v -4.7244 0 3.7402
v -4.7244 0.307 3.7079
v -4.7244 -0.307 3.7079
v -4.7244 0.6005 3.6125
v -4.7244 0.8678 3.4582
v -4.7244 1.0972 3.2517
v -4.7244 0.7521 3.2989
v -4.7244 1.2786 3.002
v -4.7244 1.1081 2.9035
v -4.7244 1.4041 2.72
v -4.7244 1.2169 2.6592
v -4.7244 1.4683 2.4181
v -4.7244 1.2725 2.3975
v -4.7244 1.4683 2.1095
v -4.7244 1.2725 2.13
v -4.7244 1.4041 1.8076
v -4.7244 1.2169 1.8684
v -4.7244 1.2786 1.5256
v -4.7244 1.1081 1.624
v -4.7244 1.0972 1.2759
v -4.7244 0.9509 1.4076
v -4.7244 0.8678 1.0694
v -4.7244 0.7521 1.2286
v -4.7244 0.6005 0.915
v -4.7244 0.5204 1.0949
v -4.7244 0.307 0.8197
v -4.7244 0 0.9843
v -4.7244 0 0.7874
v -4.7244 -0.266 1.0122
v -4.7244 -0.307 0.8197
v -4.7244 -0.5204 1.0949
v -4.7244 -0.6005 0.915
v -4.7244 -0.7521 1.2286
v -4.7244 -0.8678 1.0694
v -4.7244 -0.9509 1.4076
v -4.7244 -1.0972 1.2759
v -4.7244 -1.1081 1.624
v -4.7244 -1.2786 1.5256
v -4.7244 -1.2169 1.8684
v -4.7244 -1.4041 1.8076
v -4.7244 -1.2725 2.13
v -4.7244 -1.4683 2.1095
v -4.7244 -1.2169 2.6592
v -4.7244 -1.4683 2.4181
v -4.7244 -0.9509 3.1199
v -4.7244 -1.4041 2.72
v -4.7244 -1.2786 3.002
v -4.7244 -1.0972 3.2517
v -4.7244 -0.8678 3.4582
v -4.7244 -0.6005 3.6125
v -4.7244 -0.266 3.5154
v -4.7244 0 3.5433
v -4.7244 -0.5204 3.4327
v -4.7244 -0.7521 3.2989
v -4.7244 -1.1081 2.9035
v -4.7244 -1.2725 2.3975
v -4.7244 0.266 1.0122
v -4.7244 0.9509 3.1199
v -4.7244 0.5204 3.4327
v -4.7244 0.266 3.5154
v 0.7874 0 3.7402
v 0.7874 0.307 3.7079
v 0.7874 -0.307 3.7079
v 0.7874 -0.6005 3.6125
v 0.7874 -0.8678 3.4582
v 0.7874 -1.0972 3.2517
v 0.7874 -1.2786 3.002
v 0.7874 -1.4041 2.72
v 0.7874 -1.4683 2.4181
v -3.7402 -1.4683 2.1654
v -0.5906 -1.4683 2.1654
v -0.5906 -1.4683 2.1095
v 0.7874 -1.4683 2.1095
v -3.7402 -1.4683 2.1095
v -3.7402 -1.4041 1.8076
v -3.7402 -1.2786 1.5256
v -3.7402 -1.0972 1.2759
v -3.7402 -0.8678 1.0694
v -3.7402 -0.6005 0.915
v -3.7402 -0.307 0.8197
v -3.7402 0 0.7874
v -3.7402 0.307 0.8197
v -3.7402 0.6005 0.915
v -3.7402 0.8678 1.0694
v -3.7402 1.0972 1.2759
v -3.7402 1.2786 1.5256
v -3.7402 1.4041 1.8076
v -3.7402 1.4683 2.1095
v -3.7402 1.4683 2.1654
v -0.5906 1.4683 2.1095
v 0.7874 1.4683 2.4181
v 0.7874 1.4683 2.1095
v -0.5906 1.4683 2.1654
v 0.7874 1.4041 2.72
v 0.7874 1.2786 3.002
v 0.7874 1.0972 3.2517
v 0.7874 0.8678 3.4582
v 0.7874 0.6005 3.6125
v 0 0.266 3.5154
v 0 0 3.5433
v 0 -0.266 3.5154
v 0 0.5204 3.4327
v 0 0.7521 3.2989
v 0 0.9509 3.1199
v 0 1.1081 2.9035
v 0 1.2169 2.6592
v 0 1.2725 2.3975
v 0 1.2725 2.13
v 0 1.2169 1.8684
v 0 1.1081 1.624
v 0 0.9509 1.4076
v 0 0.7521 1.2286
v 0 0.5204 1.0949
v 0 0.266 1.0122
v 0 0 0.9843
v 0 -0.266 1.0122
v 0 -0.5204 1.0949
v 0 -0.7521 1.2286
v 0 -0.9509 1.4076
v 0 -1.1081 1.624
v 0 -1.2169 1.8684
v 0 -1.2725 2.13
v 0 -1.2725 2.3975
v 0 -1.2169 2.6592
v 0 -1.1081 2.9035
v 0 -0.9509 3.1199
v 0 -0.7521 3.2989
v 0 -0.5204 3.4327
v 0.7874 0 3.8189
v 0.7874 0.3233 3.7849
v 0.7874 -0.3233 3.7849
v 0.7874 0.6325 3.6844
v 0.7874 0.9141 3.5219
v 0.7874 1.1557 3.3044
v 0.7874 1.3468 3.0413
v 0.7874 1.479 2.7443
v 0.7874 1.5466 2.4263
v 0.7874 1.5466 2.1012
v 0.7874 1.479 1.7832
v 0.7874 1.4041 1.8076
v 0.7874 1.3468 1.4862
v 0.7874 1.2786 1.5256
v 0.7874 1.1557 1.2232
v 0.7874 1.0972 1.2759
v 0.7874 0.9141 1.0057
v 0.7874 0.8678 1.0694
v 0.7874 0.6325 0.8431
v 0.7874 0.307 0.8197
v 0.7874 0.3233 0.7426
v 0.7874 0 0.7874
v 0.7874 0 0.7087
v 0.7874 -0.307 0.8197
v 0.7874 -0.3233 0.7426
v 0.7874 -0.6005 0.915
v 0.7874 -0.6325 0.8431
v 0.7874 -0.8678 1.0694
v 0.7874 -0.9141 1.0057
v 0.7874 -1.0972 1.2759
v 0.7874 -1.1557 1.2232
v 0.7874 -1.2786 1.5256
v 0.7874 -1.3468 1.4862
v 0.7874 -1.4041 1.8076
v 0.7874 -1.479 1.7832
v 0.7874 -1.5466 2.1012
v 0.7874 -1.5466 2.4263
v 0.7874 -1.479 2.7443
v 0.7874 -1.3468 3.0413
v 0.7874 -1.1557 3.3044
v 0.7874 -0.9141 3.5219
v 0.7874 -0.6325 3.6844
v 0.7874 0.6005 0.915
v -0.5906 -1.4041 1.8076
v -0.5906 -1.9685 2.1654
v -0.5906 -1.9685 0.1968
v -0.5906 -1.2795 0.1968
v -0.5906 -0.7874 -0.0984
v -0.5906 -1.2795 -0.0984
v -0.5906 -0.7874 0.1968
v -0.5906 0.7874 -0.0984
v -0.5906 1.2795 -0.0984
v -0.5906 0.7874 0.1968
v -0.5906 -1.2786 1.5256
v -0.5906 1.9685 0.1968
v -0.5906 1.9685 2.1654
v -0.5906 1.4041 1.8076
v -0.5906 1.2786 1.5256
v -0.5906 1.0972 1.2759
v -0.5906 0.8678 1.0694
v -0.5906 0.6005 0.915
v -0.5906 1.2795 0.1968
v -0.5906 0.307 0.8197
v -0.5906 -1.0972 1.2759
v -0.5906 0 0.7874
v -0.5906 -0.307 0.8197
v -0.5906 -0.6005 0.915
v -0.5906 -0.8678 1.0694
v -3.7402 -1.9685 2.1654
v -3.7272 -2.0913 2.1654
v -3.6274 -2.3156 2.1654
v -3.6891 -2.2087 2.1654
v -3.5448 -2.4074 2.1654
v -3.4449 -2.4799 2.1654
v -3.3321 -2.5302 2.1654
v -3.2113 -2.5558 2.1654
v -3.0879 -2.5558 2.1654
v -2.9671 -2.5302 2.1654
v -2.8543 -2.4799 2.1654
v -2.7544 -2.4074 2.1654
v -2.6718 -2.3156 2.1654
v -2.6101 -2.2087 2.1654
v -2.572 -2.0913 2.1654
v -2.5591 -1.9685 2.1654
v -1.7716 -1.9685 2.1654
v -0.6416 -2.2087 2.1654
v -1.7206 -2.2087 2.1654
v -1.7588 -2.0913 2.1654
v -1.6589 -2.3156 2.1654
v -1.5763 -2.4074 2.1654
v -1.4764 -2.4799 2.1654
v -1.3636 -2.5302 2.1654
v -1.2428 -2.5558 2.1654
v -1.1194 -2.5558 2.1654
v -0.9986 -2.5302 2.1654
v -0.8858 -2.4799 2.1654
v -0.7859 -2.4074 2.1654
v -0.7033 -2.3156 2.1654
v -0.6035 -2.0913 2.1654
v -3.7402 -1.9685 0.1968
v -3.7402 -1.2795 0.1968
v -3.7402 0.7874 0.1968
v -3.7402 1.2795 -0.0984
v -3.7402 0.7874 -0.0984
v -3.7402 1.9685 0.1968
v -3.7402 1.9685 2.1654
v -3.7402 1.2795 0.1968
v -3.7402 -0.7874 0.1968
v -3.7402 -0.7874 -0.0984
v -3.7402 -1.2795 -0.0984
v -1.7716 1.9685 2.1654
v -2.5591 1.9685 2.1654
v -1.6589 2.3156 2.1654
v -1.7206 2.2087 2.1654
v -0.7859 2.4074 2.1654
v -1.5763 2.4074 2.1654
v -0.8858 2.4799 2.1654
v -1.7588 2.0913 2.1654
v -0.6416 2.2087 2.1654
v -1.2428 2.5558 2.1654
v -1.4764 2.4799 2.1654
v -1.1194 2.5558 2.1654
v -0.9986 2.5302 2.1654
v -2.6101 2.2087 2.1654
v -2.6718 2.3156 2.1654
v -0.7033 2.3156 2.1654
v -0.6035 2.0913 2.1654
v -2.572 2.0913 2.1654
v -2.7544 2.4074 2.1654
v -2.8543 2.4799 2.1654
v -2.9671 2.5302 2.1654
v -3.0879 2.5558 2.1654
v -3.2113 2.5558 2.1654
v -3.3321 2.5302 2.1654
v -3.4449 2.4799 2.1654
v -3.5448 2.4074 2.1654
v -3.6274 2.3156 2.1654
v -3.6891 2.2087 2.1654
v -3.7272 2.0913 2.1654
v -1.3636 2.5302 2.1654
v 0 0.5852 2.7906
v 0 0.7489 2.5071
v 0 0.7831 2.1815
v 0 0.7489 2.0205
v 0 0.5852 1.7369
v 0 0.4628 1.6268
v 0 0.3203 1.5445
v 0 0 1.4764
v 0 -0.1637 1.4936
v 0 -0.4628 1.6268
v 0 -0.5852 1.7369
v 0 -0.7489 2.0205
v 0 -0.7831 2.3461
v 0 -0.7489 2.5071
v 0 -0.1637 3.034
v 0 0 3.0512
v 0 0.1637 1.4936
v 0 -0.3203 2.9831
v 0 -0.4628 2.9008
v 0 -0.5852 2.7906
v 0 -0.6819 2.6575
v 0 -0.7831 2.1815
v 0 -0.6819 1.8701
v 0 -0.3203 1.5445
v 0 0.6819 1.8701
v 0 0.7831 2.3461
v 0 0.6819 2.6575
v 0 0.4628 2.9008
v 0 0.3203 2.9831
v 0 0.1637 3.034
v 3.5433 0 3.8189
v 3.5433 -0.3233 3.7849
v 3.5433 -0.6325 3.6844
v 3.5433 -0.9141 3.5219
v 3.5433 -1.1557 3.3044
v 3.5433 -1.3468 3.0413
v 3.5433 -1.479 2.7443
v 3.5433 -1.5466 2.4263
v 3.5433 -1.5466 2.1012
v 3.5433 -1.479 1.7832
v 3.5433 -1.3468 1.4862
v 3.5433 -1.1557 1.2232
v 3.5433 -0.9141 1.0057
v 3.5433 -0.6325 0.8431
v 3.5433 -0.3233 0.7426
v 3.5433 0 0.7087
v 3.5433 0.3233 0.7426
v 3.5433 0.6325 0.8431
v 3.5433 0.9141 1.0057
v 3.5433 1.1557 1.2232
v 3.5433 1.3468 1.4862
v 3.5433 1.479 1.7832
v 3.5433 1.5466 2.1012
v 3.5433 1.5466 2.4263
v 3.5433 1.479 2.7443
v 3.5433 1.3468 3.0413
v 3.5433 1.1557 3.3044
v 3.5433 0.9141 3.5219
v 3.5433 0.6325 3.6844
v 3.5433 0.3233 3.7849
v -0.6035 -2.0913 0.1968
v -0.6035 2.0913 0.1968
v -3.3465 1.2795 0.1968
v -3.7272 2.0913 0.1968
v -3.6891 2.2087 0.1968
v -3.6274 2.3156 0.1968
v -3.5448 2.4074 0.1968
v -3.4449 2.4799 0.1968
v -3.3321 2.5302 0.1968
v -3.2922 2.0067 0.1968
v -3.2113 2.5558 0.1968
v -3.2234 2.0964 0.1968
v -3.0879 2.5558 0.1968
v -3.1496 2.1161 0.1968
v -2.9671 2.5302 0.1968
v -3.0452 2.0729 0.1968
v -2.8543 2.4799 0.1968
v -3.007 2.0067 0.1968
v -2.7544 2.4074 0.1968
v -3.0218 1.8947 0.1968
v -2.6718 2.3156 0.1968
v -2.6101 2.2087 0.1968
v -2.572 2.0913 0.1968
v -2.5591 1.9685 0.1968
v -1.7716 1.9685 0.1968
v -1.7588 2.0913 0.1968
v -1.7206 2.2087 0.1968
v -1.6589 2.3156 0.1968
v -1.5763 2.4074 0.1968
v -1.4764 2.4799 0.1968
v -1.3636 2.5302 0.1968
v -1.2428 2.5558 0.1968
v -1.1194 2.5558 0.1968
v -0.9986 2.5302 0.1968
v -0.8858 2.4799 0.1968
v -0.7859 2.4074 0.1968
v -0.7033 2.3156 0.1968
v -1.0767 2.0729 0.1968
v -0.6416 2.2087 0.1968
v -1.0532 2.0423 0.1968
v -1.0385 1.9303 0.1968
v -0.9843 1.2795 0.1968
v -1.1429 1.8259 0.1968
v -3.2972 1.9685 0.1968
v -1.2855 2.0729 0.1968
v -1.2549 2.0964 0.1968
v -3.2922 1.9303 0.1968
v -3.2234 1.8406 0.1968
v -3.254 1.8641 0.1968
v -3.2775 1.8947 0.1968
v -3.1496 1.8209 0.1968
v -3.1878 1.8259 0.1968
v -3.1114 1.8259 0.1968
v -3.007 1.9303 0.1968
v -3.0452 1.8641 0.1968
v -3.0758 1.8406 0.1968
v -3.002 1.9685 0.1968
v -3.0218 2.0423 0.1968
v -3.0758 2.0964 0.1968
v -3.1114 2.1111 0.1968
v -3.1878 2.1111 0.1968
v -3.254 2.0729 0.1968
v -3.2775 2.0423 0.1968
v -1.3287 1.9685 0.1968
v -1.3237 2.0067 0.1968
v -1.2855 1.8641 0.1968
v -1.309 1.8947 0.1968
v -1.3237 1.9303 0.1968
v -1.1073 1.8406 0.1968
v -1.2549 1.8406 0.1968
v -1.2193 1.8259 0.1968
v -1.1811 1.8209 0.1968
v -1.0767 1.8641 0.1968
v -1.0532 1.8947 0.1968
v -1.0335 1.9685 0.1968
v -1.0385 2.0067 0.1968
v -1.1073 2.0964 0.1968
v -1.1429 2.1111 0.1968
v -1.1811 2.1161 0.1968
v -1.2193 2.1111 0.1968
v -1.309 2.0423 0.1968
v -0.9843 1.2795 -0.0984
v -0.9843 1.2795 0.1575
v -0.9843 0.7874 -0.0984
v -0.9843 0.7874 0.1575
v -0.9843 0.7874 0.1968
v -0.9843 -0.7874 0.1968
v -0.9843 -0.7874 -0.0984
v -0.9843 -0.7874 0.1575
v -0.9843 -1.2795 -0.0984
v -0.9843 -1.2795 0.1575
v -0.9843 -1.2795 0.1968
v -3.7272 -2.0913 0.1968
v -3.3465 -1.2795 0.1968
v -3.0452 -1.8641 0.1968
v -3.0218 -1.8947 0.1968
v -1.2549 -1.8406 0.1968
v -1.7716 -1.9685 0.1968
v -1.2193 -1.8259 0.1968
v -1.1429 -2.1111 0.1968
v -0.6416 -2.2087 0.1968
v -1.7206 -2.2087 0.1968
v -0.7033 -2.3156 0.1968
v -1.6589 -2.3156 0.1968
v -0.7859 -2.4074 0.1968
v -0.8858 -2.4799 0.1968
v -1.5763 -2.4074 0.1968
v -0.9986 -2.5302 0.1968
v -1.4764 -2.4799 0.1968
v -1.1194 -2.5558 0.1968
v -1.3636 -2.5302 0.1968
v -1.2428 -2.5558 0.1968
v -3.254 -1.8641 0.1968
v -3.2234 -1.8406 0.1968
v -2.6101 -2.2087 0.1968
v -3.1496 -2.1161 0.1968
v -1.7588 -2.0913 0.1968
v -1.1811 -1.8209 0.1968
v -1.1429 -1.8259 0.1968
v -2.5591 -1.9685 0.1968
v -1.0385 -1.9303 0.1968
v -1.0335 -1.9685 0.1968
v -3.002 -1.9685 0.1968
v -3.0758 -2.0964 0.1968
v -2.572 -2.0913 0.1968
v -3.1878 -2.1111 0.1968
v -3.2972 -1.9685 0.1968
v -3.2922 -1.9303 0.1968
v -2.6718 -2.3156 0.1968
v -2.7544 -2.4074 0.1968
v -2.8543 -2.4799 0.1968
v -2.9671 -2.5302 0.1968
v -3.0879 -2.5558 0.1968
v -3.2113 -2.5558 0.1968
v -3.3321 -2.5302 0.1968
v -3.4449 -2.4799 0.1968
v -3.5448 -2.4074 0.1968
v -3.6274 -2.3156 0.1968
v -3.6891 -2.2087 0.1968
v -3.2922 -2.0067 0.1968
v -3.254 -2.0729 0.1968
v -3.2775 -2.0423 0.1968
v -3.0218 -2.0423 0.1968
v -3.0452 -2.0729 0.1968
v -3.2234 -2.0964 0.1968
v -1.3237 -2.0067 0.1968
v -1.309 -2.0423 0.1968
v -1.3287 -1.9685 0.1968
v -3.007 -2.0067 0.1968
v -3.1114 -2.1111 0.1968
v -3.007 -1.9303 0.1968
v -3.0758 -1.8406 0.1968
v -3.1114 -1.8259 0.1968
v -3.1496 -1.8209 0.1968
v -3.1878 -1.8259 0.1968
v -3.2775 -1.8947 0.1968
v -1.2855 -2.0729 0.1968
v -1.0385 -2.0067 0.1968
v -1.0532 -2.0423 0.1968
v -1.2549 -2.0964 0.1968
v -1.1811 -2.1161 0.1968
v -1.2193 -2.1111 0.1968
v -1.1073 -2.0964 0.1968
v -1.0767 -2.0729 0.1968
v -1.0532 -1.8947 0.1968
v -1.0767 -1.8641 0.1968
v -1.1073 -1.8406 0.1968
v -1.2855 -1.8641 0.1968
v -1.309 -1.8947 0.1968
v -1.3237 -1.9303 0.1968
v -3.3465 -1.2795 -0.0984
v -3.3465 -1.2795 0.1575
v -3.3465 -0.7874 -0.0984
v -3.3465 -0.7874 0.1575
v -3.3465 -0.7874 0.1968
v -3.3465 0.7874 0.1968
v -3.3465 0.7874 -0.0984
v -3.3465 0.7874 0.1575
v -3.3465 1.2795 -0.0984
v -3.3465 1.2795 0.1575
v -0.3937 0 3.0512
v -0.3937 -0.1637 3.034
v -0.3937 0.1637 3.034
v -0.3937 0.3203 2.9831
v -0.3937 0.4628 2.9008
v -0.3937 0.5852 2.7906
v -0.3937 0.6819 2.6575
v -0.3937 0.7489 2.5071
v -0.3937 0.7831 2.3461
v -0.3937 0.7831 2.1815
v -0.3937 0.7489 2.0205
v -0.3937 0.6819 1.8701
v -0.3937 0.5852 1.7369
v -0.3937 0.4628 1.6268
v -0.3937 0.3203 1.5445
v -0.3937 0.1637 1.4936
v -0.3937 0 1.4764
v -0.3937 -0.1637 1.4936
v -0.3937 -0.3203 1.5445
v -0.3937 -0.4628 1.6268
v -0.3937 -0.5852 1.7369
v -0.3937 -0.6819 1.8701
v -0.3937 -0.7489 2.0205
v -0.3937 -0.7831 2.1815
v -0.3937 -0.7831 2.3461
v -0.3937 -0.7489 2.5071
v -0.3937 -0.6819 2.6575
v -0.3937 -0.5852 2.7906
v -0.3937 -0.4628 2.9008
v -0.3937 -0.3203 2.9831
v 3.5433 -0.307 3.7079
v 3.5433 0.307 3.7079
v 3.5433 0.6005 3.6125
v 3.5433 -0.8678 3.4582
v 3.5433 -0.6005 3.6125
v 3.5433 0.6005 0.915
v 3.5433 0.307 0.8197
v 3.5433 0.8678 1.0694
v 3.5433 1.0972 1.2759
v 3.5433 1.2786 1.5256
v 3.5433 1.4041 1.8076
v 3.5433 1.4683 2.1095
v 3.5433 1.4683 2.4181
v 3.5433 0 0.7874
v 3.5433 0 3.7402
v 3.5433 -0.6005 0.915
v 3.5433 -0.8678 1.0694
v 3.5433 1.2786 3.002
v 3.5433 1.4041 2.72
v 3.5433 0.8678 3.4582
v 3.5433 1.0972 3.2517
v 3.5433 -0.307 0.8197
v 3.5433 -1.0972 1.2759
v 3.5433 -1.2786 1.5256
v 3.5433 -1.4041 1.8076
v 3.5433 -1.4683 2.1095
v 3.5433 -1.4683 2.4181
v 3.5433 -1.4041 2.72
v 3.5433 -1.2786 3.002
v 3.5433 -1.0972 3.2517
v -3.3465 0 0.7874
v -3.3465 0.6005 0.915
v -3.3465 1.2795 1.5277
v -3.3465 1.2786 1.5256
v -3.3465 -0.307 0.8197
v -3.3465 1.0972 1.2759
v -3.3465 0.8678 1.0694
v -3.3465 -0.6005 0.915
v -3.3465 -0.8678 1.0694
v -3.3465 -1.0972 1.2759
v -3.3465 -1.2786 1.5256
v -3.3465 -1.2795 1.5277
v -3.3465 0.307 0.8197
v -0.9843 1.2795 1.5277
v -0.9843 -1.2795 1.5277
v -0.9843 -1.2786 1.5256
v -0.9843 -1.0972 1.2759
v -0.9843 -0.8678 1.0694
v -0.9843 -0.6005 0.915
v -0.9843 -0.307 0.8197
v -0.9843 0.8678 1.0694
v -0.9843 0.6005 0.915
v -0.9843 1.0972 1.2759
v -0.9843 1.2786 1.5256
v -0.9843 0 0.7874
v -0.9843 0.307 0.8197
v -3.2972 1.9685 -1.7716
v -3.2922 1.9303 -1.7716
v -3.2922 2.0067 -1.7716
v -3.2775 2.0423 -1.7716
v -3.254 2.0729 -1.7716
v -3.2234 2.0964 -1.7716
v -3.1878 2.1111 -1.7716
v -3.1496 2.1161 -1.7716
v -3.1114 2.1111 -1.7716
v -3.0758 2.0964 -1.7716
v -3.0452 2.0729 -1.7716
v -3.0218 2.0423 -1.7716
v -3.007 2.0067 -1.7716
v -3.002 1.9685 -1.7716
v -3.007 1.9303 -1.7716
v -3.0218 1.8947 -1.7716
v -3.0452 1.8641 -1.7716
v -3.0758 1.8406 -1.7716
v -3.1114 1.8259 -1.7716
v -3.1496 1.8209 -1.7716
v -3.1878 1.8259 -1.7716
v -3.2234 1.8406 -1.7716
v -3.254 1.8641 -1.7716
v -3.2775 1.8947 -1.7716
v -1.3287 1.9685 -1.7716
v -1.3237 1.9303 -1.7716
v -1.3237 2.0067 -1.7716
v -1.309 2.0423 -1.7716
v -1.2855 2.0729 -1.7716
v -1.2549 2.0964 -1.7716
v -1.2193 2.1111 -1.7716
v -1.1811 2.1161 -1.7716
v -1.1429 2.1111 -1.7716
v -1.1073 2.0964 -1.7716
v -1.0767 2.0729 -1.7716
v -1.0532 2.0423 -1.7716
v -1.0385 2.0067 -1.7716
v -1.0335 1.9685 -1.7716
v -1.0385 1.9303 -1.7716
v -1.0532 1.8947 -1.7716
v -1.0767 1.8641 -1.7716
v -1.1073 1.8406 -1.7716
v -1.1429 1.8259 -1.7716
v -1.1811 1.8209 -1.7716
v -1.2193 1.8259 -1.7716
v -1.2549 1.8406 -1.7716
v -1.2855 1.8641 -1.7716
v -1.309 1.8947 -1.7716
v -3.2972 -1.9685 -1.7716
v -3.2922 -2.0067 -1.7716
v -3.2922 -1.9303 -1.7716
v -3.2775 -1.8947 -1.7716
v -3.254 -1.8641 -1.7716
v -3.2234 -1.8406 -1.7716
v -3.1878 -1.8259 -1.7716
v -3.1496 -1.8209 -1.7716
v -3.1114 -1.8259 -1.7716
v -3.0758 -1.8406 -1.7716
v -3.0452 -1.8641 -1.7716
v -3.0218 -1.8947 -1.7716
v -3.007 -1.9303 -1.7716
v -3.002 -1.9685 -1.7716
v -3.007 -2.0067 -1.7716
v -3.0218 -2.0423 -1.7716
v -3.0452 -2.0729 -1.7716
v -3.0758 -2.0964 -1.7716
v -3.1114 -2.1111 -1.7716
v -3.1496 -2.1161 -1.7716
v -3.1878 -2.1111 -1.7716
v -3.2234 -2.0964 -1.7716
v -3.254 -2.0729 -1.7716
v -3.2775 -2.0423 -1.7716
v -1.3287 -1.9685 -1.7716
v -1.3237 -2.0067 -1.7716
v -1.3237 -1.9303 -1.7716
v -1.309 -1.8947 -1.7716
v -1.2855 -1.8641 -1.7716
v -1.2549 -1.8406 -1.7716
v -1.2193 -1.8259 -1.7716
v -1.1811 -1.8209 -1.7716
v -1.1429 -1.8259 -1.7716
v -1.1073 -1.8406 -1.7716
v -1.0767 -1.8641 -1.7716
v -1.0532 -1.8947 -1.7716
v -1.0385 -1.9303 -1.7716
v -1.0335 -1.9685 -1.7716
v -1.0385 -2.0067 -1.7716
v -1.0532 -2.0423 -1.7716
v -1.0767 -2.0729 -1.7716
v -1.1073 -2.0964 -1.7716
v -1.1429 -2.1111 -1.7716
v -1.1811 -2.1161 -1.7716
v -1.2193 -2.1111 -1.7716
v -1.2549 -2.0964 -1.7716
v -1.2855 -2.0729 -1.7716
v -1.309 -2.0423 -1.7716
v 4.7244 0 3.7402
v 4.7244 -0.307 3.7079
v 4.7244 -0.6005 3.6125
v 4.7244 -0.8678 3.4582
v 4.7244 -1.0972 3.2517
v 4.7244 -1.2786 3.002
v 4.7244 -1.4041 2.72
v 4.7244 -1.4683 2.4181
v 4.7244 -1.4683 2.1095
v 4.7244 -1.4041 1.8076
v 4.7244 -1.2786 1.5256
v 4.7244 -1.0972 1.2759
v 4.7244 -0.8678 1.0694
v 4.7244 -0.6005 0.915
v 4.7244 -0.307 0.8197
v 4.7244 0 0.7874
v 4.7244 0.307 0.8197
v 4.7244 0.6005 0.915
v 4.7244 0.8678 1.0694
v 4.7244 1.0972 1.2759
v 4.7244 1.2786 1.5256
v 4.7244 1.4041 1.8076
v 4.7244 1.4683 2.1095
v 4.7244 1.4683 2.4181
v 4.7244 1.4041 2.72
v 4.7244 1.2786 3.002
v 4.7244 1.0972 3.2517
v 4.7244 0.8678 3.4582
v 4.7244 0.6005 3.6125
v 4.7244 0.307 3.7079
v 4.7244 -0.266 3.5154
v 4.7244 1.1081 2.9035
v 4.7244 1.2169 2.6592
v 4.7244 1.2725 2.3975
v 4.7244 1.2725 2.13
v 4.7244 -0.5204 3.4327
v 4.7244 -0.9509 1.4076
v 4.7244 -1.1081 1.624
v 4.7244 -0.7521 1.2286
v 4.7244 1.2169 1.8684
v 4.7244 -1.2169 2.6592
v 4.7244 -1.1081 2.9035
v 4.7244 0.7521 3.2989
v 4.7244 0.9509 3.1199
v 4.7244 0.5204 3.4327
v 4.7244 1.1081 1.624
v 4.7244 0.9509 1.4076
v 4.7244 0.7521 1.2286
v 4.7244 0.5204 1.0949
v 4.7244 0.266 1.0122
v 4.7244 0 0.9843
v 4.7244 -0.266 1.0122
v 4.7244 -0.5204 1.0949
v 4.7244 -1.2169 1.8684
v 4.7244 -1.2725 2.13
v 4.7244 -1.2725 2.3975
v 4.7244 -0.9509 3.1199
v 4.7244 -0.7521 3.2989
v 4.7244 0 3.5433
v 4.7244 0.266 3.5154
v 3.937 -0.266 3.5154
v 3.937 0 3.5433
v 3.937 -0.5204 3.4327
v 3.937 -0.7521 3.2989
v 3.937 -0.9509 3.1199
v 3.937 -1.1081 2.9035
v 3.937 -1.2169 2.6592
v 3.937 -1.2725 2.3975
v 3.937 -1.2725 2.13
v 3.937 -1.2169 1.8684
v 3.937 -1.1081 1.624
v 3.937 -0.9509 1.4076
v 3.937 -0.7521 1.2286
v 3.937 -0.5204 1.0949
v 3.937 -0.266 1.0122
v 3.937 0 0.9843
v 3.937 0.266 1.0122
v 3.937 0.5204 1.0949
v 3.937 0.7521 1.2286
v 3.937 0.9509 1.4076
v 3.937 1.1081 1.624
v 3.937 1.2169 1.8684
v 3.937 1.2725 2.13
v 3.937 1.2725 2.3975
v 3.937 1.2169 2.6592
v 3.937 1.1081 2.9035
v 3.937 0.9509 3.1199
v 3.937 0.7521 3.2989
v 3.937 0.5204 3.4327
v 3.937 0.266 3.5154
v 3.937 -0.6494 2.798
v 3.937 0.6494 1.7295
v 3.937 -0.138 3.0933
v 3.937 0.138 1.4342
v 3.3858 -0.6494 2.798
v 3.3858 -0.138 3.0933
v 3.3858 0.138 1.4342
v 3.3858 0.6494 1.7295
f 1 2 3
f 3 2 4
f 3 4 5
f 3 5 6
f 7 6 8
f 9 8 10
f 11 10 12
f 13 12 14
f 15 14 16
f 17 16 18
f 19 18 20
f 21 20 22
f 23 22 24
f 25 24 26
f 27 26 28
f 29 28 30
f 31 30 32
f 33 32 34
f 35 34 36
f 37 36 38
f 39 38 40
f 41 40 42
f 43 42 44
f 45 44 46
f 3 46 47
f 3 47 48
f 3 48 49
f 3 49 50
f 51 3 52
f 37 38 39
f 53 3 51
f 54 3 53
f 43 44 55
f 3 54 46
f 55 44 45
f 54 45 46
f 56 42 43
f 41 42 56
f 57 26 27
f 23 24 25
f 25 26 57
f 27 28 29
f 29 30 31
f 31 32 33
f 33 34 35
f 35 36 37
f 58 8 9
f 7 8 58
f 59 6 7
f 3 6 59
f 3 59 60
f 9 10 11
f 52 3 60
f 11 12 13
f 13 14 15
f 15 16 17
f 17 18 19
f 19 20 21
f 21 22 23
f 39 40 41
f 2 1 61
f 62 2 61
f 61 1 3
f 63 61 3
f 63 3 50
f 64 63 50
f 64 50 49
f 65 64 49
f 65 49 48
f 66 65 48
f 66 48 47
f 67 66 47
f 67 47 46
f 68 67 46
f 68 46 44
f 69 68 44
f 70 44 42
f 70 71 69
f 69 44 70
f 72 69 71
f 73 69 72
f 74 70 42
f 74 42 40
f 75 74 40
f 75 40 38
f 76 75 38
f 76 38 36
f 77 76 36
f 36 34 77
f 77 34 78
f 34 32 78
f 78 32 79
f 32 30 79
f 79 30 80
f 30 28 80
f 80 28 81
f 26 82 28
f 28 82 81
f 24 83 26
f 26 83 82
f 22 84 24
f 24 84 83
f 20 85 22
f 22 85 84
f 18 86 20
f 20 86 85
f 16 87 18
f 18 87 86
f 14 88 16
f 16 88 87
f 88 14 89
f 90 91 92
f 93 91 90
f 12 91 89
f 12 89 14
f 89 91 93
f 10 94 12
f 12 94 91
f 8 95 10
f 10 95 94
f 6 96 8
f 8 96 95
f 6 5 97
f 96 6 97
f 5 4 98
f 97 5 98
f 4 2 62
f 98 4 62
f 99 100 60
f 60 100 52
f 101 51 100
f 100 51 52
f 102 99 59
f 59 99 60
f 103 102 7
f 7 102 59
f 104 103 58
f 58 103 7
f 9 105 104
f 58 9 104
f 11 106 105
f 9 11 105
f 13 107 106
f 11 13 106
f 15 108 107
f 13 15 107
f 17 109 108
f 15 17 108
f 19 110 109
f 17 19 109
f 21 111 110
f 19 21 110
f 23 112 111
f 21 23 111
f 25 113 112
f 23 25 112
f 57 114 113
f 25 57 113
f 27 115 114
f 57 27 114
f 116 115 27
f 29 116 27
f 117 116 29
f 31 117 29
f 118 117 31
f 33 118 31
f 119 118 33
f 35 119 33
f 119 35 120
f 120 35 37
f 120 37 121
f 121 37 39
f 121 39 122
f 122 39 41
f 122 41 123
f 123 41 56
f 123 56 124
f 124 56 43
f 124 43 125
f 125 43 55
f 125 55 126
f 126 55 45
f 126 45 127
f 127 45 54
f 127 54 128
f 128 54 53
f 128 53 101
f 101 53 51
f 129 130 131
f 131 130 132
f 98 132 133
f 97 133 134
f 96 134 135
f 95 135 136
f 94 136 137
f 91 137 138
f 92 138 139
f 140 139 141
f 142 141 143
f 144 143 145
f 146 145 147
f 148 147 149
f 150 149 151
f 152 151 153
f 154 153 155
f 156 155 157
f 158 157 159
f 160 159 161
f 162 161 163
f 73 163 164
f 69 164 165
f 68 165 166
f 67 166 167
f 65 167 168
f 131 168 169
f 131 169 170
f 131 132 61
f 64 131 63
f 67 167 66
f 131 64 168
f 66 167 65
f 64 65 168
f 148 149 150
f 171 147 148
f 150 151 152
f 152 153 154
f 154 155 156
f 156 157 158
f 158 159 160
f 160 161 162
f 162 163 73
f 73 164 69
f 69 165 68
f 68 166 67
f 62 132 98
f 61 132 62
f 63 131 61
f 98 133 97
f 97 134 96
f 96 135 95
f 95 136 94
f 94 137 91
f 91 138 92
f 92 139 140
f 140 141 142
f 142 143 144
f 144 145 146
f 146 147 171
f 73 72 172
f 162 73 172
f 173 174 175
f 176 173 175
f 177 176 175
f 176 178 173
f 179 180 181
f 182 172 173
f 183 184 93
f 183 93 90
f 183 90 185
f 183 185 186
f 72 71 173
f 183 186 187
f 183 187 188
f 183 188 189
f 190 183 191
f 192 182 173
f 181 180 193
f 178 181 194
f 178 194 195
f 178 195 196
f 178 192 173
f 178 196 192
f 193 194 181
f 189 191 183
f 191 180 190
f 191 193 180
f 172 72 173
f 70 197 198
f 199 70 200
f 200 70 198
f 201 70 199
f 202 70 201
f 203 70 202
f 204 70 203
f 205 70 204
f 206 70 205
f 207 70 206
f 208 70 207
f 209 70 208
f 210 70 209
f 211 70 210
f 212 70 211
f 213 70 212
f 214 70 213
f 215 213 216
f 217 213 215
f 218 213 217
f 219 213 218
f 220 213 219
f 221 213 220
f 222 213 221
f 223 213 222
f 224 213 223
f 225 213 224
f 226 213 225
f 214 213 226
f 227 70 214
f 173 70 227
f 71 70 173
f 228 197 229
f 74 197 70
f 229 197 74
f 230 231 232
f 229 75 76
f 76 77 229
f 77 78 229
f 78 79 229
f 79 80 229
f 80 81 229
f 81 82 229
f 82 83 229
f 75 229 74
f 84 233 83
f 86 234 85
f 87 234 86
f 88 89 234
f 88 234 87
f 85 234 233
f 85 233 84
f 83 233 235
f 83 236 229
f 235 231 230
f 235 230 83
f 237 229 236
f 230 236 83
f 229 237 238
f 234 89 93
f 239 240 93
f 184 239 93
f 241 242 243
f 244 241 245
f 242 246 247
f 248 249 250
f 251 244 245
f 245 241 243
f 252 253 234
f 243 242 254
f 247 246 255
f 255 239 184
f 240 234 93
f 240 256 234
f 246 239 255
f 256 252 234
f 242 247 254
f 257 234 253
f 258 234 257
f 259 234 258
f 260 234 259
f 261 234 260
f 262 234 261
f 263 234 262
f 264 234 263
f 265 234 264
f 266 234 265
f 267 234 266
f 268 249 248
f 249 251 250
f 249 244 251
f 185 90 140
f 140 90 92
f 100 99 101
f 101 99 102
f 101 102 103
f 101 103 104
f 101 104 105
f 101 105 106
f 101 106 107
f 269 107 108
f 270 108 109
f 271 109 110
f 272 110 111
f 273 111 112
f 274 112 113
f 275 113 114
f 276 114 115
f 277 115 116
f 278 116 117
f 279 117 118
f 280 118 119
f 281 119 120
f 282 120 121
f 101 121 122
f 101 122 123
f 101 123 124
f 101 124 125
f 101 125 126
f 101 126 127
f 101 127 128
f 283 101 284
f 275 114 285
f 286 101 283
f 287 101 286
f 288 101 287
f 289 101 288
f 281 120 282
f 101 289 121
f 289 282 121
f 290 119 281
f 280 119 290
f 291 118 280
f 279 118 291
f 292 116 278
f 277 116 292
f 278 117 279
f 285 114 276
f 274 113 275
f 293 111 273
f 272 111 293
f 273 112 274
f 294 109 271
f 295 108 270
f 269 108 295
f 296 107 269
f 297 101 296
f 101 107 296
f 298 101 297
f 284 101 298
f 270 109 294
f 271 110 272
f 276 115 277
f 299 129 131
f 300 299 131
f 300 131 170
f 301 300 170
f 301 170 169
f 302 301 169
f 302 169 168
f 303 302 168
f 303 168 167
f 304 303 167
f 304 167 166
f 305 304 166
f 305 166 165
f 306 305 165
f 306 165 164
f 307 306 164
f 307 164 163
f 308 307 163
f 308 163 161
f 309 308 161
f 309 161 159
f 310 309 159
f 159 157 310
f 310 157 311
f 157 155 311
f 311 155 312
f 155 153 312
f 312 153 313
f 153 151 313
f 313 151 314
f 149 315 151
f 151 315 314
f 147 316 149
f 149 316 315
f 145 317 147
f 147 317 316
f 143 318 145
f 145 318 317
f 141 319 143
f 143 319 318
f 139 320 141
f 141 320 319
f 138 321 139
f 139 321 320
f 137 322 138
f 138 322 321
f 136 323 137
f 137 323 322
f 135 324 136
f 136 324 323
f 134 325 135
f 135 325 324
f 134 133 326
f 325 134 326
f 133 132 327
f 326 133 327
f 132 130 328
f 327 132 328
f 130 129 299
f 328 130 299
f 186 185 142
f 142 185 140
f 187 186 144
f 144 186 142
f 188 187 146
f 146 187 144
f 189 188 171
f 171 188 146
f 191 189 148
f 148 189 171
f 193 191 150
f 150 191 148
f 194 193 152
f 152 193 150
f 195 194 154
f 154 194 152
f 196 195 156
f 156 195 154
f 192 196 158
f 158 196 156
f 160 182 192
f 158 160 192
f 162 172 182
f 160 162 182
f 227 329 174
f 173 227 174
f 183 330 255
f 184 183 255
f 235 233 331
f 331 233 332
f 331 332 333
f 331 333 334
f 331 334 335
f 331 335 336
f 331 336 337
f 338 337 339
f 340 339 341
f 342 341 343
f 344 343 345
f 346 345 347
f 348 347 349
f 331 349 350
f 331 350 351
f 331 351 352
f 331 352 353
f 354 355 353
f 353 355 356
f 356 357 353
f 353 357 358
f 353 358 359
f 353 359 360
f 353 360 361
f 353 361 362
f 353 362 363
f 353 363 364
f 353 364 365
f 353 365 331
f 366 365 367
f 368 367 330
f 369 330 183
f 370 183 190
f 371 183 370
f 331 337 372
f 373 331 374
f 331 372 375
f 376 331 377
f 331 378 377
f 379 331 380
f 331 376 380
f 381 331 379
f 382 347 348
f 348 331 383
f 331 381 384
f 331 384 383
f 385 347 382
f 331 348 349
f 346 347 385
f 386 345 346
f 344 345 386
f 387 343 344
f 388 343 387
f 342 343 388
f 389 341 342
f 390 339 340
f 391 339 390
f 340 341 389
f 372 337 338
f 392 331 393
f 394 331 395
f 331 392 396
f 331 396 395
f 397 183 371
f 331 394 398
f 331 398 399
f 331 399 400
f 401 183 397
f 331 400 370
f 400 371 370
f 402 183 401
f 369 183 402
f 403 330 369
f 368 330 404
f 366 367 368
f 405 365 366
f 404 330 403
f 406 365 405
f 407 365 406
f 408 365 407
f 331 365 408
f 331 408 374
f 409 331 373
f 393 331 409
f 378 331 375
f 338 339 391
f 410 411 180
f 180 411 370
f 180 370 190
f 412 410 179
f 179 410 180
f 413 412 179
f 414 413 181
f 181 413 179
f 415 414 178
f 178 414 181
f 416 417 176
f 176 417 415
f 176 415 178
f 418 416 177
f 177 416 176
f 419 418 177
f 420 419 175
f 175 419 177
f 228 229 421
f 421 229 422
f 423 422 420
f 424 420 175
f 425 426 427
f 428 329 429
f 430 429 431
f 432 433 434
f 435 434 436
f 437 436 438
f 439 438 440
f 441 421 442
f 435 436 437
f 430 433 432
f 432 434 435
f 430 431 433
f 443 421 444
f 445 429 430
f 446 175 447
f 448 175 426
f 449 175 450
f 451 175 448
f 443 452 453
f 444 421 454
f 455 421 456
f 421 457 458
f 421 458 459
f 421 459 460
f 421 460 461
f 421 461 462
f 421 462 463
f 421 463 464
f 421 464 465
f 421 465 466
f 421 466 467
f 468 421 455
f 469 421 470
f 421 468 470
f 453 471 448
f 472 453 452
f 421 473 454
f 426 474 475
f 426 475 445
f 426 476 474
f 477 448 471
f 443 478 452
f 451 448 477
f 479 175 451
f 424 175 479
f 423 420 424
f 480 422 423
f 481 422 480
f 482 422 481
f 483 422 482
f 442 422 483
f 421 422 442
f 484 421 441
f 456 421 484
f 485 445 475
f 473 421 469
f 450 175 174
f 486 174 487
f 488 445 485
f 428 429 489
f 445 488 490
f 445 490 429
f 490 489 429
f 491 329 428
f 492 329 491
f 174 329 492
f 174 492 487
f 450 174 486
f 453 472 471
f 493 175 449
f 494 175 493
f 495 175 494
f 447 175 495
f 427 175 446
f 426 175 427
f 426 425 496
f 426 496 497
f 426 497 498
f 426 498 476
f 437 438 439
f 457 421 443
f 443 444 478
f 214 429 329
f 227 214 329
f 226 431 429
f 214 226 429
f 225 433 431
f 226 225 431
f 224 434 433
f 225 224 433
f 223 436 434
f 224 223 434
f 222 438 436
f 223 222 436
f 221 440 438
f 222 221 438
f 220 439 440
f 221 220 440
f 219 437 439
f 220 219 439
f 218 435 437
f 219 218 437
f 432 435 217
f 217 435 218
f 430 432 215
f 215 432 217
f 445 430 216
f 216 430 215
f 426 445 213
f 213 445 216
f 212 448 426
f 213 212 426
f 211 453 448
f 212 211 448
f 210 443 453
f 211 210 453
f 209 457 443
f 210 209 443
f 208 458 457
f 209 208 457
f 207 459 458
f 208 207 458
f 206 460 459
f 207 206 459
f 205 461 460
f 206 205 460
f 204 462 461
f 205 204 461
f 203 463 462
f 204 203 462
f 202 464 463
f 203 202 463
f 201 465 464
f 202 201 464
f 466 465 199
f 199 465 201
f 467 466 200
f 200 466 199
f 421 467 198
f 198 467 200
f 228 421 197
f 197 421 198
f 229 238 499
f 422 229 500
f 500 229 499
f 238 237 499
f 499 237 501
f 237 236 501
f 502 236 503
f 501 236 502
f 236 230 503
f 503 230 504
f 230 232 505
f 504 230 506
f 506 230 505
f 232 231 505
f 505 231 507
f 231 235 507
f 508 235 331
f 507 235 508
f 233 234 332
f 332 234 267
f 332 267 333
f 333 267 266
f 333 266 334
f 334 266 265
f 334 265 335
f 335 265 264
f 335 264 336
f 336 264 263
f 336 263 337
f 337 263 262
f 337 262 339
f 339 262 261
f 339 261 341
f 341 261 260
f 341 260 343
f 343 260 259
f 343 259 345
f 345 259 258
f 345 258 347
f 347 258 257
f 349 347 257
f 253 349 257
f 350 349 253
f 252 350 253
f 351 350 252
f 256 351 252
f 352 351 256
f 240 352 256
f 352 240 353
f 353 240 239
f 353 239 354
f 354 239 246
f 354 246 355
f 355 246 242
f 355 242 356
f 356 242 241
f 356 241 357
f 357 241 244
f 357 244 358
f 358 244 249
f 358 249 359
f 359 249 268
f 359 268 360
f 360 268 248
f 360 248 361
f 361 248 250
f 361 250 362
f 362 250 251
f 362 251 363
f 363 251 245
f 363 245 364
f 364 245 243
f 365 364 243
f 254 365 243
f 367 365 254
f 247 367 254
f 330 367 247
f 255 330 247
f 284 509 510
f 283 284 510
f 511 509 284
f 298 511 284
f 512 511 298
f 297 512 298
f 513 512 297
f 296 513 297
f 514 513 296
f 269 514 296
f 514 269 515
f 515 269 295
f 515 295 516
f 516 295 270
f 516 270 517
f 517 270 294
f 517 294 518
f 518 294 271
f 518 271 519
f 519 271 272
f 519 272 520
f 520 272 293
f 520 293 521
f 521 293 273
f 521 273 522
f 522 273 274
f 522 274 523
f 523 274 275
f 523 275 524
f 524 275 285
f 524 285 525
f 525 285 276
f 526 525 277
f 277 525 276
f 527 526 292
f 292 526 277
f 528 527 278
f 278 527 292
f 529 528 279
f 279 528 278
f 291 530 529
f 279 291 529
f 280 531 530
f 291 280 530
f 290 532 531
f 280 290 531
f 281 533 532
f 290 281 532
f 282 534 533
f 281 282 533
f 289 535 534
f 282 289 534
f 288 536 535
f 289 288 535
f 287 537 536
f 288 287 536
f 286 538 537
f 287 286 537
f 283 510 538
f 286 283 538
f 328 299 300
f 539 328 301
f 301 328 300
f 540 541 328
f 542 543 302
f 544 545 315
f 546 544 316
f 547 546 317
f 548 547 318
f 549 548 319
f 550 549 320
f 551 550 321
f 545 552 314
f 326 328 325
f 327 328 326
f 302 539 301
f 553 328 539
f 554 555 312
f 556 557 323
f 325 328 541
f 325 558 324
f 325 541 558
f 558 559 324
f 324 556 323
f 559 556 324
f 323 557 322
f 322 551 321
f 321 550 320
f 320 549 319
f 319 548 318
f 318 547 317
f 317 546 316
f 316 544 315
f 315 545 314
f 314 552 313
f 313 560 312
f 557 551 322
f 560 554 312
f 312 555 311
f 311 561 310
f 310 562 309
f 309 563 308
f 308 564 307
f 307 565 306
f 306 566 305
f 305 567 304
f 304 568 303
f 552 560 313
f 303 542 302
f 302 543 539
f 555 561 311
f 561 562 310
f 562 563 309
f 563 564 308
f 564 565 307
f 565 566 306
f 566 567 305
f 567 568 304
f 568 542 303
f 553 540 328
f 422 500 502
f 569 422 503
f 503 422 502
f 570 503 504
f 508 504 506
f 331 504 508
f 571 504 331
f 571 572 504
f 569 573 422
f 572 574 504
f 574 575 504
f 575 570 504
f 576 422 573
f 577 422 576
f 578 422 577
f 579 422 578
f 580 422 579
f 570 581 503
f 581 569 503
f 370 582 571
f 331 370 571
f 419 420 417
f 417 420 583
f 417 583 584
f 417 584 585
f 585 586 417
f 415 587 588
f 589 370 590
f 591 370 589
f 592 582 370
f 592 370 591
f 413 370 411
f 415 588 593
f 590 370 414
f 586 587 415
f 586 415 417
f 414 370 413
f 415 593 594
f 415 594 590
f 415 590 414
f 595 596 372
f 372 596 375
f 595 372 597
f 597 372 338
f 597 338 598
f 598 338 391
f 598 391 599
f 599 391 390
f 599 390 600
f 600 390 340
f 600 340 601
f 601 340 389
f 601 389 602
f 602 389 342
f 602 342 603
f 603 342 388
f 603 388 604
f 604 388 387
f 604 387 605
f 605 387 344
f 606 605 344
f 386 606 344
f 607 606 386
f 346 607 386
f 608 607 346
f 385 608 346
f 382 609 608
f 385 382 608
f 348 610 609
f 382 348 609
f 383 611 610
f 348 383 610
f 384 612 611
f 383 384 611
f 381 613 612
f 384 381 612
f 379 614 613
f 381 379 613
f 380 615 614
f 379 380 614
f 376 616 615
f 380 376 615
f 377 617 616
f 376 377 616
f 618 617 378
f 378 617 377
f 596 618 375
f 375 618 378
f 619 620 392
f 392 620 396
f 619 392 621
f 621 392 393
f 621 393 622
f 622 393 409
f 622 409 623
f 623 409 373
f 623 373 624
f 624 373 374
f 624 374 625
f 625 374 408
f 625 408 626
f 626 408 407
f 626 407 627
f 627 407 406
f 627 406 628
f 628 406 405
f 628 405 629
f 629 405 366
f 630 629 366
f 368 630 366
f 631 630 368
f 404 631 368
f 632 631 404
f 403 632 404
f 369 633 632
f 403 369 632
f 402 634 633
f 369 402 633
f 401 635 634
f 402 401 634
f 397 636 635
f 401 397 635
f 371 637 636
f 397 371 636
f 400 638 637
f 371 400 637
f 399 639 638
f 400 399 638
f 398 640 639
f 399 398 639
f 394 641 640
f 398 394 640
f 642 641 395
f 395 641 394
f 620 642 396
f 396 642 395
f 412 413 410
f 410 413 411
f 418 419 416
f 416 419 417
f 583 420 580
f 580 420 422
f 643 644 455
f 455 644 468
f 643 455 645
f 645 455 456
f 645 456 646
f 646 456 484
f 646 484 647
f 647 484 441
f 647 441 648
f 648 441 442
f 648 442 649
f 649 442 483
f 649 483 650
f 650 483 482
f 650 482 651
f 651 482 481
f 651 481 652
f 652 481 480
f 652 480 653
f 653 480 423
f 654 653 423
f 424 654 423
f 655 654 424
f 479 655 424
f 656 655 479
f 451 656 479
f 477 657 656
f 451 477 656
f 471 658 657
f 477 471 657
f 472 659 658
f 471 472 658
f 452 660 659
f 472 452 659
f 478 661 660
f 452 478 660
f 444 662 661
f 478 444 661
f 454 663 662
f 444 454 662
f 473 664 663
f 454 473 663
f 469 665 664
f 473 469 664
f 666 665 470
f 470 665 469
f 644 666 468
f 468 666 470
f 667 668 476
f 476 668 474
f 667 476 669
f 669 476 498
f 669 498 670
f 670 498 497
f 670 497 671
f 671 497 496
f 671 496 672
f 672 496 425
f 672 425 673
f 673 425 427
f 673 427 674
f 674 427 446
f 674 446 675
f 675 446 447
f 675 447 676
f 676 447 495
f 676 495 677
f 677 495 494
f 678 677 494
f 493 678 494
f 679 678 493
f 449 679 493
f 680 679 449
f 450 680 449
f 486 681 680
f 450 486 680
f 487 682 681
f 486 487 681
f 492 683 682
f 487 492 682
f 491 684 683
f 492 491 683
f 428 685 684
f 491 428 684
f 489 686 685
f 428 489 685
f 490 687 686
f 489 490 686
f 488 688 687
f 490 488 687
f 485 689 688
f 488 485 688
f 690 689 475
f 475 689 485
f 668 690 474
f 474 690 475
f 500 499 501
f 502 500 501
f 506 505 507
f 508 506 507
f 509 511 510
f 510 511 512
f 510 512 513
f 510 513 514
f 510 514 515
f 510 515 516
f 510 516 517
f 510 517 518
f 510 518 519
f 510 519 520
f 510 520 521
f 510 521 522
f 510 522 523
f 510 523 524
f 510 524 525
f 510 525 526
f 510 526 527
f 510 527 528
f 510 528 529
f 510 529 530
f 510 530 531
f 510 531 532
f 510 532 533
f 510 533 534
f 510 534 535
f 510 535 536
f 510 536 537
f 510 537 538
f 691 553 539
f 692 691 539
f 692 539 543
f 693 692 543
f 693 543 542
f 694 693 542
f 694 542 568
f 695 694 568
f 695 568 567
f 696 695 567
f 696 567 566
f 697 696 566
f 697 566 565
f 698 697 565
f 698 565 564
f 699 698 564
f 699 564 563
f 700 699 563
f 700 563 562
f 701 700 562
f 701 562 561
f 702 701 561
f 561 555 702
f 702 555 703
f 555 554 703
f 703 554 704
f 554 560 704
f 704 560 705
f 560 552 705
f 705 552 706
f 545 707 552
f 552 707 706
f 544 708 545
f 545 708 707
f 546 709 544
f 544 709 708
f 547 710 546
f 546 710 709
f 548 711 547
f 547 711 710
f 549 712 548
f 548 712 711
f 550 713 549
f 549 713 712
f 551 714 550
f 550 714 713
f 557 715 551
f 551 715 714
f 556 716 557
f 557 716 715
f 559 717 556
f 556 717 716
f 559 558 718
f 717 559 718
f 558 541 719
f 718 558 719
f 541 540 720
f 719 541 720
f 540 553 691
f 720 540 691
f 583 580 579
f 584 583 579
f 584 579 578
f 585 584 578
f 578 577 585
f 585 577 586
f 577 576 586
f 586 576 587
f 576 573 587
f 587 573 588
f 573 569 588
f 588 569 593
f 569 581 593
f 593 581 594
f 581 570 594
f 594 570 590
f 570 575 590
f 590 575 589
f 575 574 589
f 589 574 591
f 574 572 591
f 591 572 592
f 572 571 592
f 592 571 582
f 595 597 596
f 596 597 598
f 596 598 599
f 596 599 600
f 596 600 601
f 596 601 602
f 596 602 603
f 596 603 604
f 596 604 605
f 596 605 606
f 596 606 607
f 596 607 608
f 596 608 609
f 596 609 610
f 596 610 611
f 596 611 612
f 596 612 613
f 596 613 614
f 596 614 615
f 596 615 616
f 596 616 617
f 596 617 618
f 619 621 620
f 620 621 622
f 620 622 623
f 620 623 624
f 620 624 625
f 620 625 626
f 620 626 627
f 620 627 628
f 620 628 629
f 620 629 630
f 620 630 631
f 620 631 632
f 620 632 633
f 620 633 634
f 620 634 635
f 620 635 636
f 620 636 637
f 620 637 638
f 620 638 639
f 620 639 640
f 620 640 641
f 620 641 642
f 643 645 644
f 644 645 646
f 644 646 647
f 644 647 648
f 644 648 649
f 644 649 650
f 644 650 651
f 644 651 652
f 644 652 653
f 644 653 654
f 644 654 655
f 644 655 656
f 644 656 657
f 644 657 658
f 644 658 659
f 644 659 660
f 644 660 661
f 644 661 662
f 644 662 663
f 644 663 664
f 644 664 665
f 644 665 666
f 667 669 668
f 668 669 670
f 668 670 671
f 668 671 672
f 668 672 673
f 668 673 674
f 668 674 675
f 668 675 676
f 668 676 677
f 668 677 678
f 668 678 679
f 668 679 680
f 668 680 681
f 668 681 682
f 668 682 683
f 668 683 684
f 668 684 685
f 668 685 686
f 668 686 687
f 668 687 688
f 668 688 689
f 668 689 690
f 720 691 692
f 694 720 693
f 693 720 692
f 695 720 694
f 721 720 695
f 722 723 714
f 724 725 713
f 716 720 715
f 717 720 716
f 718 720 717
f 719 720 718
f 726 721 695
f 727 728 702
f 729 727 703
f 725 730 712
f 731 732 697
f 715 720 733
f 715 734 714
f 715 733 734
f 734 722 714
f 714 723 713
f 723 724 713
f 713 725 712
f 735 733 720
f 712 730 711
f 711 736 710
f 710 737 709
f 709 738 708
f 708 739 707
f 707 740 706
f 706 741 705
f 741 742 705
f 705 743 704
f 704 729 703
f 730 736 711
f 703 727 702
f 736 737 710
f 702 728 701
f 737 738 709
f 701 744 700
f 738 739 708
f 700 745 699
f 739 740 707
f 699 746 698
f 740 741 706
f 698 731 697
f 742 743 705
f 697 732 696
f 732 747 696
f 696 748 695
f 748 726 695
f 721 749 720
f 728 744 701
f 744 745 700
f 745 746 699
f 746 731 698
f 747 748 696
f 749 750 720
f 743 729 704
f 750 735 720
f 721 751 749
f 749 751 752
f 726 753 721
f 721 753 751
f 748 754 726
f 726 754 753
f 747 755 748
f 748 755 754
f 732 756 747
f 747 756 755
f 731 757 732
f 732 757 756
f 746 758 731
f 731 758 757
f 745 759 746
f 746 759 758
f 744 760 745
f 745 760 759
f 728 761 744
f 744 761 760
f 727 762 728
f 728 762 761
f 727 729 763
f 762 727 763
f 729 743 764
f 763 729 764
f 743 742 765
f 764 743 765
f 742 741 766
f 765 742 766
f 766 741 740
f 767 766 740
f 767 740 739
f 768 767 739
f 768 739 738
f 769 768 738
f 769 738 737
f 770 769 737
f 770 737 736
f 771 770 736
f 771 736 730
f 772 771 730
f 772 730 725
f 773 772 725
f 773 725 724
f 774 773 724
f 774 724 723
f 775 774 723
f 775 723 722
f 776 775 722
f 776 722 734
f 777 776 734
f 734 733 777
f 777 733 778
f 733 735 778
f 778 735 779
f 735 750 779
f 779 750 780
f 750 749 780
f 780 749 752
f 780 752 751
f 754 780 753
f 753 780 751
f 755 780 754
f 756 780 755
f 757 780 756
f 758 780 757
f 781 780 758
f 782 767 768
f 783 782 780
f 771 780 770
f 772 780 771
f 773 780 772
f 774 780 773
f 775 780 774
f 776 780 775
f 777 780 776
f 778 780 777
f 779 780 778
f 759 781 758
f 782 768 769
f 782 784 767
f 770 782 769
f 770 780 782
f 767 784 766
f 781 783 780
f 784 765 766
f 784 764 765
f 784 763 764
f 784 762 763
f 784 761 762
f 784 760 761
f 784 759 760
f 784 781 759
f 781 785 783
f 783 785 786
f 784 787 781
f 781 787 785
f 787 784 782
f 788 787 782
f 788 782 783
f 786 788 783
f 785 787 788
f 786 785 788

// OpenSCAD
$fs = 0.1;

module pin(d, h) {
	pin_diameter = 0.75;
	pin_h = 6;
	union() {
		color("yellow")
		cylinder(d = d, h = h);
		translate([0, 0, -h])
		color("silver")
		cylinder(d = pin_diameter, h = pin_h);
	}
}

module inductor() {
	cyl_up = 2;
	d = 7.5;
	l = 24;
	wall = 0.5;
	coil = 0.2;
	bx = 8; by = 10; bz = 5;
	bc_diameter = 3;
	cs = 4.0;
	cx = 1; cy = 1.25; cz = 0.75;
	hh = 10; hph = 1; hpd = 4;
	hhx = 4; hhy = 1.5; hhz = 1.5;
	difference() {
		union() {
			// cylinder
			translate([-l/2, 0, d/2 + cyl_up])
			rotate([0, 90, 0])
			union() {
				color("yellow")
				cylinder(d = d, h = l);
				color("brown")
				translate([0, 0, 14])
				cylinder(d = d+coil*2, h = 7);
			}
			// base
			translate([-l/2 + 2.5, 0, 0.5])
			difference() {
				union() {
					color("yellow")
					translate([0, -by/2, 0])
					cube([bx, by, bz]);
					translate([bc_diameter/2, by/2, 0])
					pin(bc_diameter, bz);
					translate([bc_diameter/2, -by/2, 0])
					pin(bc_diameter, bz);
					translate([bx - bc_diameter/2, by/2, 0])
					pin(bc_diameter, bz);
					translate([bx - bc_diameter/2, -by/2, 0])
					pin(bc_diameter, bz);
					color("yellow")
					translate([0, cs/2, -cz])
					cube([cx, cy, cz]);
					color("yellow")
					translate([0, -cs/2 - cy, -cz])
					cube([cx, cy, cz]);
					color("yellow")
					translate([bx-cx, cs/2, -cz])
					cube([cx, cy, cz]);
					color("yellow")
					translate([bx-cx, -cs/2 - cy, -cz])
					cube([cx, cy, cz]);
				}
				translate([cx, -6.5/2, -0.1])
				cube([bx-cx*2, 6.5, bz-cx/2]);
			}
		}
		// hole
		translate([-l/2-1, 0, d/2 + cyl_up])
		rotate([0, 90, 0])
		cylinder(d = d - wall*2, h = l+2);
	}
	// heart
	color([0.2, 0.2, 0.2])
	translate([0, 0, d/2 + cyl_up])
	rotate([0, 90, 0])
	difference() {
		union() {
			cylinder(d = d - wall, h = hh);
			translate([0, 0, -hph])
			cylinder(d = hpd, h = hph);			
		}
		rotate([0, 0, 30])
		translate([-hhx/2, -hhy/2, hh - hhz + 0.1])
		cube([hhx, hhy, hhz+0.1]);
	}
}

_inch = 1/2.54;
scale([_inch, _inch, _inch])
inductor();
